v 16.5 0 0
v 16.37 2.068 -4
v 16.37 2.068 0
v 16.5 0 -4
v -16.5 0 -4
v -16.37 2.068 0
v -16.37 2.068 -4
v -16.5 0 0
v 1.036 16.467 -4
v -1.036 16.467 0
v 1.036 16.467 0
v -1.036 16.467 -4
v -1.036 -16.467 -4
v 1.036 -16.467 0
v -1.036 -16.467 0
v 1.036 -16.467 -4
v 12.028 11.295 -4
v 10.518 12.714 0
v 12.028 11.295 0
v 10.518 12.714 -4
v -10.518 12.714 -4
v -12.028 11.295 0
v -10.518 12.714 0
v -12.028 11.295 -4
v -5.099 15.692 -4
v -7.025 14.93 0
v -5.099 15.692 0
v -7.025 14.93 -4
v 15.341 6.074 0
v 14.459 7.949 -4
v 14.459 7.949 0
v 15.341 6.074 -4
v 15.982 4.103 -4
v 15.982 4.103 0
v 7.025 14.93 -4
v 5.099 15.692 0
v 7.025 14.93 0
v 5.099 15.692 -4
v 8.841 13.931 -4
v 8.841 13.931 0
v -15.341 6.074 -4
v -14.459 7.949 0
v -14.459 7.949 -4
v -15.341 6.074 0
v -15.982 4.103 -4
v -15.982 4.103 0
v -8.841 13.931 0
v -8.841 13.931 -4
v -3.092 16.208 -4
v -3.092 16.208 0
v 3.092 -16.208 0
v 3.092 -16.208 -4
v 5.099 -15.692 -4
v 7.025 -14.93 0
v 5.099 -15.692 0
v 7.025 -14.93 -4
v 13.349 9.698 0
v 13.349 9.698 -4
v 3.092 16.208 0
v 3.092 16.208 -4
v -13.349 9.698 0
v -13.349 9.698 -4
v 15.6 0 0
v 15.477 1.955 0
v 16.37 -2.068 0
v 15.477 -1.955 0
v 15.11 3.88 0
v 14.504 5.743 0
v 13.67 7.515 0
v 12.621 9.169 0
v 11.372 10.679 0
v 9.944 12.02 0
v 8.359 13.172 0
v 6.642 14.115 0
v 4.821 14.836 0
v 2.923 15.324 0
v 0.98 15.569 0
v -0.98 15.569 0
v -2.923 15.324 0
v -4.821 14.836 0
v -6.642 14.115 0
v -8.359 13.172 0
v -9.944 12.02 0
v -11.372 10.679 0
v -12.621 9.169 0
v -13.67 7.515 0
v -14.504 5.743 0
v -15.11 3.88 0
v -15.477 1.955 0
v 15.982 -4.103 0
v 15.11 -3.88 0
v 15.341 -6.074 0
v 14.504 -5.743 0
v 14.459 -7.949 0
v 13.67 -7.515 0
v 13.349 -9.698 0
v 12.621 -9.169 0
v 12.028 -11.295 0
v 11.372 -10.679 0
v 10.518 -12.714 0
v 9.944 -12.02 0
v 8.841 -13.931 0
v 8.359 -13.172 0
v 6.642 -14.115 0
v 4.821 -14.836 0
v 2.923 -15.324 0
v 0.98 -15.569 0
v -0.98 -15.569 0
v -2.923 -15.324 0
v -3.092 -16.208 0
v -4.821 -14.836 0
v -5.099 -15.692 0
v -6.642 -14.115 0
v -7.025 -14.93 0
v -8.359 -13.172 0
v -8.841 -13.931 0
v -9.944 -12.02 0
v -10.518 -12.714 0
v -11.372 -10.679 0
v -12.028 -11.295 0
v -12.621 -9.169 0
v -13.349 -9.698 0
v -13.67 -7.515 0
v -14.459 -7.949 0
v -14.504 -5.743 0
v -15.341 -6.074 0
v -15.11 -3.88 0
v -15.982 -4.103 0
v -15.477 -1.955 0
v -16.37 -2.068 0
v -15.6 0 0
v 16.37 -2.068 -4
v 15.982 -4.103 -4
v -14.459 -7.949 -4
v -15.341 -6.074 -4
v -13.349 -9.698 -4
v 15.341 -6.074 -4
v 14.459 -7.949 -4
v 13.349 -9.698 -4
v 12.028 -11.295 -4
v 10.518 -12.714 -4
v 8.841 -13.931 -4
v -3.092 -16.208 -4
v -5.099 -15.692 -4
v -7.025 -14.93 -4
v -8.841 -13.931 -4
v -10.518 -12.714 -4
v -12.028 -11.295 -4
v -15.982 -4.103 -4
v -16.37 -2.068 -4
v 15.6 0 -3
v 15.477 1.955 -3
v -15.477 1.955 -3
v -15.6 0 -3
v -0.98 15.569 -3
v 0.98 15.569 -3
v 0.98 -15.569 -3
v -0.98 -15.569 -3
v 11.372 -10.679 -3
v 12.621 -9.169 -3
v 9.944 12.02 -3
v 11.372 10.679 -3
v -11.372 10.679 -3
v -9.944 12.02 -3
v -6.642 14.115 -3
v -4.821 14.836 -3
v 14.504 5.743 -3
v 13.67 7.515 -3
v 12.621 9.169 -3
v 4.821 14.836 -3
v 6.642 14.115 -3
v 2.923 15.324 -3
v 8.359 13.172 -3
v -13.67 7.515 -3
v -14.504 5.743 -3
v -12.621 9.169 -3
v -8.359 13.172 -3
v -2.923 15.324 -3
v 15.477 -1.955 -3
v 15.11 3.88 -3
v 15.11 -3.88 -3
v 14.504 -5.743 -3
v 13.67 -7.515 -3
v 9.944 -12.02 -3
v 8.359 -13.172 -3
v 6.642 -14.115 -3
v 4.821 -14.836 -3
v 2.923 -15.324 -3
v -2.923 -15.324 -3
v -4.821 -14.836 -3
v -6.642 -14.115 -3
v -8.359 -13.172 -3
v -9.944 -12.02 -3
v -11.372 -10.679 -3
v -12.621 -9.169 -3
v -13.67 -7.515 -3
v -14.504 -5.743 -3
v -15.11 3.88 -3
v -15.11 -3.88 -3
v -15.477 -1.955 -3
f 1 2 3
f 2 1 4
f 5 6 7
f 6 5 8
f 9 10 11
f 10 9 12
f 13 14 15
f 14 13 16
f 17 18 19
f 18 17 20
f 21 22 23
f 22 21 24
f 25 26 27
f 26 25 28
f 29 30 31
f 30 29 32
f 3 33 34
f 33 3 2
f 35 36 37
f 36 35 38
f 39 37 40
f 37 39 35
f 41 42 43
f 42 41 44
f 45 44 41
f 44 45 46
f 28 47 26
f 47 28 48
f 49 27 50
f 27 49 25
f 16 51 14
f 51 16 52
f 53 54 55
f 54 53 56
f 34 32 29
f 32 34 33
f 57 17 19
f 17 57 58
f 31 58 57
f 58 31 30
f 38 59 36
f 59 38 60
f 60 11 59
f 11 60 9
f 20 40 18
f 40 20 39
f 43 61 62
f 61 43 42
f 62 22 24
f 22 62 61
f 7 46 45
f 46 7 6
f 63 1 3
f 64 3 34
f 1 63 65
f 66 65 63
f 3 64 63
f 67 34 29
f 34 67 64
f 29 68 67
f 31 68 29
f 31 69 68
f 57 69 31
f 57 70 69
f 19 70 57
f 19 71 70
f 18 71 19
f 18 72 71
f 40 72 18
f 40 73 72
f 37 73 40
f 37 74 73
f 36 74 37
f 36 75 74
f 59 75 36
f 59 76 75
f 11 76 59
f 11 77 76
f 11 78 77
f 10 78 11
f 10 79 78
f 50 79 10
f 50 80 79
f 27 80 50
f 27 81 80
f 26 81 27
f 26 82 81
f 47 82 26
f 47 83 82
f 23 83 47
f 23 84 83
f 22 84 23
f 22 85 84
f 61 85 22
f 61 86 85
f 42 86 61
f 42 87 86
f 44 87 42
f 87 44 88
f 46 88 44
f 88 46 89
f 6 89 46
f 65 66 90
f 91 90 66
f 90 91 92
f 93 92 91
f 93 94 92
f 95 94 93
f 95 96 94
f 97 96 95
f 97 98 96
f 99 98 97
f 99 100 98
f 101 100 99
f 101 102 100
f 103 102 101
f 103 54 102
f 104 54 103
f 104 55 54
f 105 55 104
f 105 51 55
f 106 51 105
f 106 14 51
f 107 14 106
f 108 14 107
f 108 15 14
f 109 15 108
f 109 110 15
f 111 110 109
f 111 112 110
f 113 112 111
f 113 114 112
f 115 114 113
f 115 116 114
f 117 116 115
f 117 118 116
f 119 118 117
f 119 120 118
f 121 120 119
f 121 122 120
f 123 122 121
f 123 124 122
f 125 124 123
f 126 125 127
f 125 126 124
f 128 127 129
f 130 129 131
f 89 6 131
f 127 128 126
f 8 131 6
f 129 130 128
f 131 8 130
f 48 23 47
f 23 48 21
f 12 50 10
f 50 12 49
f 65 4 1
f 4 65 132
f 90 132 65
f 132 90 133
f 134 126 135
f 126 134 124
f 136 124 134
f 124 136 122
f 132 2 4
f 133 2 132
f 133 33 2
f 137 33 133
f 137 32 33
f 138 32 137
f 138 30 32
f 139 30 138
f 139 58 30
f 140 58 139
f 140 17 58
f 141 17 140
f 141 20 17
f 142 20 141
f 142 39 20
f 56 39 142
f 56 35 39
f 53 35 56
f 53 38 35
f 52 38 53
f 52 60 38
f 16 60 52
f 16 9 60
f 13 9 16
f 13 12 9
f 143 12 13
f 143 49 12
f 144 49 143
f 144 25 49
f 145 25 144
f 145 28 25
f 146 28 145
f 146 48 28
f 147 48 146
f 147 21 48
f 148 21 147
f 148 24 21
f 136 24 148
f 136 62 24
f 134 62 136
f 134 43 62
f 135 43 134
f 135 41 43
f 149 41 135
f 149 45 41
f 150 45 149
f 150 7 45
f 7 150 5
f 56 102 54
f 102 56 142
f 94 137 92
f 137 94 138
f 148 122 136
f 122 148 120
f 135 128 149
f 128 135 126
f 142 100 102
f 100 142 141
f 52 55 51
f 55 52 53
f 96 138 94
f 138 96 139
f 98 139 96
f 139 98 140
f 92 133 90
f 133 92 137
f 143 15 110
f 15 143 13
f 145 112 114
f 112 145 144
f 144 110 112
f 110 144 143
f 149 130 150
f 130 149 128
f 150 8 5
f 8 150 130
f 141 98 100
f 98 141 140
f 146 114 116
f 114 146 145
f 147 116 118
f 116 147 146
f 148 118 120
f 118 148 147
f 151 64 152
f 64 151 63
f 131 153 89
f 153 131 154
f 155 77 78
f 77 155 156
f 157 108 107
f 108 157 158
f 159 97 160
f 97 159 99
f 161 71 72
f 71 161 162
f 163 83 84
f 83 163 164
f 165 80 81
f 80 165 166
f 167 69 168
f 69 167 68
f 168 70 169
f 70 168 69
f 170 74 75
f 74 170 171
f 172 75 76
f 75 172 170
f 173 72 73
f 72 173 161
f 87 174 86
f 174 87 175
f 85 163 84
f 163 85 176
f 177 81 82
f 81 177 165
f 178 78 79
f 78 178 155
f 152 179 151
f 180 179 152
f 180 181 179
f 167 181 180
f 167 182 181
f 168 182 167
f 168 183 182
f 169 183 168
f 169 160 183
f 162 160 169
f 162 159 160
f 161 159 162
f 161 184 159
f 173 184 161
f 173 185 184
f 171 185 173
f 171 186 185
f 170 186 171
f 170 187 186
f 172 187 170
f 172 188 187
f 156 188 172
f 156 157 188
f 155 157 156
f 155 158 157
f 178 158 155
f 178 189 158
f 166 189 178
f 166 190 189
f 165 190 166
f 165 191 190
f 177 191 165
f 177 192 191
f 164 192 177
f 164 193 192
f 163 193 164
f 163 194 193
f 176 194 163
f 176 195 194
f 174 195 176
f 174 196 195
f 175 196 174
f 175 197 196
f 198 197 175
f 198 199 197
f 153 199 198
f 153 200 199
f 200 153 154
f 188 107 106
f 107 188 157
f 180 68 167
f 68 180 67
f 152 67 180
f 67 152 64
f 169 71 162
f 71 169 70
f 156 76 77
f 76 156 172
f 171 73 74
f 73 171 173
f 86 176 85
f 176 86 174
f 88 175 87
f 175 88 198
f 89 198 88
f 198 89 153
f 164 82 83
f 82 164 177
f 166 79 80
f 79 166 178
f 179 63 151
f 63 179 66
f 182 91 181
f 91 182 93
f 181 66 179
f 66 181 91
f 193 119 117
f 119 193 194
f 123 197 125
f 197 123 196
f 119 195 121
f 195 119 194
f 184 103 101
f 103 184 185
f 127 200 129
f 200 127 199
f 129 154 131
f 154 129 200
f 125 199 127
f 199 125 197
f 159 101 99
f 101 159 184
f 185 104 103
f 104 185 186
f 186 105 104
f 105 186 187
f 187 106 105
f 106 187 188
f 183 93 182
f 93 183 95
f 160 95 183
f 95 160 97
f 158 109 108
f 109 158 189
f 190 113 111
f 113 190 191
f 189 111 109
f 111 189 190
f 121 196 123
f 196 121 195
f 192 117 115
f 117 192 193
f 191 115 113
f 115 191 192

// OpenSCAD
$fn = 50;


difference() {
	union() {
		translate(v = [0, 0, -4.0000000000]) {
			cylinder(h = 4, r = 16.5000000000);
		}
	}
	union() {
		#translate(v = [0, 0, -3.0000000000]) {
			cylinder(h = 3, r = 15.6000000000);
		}
	}
}
